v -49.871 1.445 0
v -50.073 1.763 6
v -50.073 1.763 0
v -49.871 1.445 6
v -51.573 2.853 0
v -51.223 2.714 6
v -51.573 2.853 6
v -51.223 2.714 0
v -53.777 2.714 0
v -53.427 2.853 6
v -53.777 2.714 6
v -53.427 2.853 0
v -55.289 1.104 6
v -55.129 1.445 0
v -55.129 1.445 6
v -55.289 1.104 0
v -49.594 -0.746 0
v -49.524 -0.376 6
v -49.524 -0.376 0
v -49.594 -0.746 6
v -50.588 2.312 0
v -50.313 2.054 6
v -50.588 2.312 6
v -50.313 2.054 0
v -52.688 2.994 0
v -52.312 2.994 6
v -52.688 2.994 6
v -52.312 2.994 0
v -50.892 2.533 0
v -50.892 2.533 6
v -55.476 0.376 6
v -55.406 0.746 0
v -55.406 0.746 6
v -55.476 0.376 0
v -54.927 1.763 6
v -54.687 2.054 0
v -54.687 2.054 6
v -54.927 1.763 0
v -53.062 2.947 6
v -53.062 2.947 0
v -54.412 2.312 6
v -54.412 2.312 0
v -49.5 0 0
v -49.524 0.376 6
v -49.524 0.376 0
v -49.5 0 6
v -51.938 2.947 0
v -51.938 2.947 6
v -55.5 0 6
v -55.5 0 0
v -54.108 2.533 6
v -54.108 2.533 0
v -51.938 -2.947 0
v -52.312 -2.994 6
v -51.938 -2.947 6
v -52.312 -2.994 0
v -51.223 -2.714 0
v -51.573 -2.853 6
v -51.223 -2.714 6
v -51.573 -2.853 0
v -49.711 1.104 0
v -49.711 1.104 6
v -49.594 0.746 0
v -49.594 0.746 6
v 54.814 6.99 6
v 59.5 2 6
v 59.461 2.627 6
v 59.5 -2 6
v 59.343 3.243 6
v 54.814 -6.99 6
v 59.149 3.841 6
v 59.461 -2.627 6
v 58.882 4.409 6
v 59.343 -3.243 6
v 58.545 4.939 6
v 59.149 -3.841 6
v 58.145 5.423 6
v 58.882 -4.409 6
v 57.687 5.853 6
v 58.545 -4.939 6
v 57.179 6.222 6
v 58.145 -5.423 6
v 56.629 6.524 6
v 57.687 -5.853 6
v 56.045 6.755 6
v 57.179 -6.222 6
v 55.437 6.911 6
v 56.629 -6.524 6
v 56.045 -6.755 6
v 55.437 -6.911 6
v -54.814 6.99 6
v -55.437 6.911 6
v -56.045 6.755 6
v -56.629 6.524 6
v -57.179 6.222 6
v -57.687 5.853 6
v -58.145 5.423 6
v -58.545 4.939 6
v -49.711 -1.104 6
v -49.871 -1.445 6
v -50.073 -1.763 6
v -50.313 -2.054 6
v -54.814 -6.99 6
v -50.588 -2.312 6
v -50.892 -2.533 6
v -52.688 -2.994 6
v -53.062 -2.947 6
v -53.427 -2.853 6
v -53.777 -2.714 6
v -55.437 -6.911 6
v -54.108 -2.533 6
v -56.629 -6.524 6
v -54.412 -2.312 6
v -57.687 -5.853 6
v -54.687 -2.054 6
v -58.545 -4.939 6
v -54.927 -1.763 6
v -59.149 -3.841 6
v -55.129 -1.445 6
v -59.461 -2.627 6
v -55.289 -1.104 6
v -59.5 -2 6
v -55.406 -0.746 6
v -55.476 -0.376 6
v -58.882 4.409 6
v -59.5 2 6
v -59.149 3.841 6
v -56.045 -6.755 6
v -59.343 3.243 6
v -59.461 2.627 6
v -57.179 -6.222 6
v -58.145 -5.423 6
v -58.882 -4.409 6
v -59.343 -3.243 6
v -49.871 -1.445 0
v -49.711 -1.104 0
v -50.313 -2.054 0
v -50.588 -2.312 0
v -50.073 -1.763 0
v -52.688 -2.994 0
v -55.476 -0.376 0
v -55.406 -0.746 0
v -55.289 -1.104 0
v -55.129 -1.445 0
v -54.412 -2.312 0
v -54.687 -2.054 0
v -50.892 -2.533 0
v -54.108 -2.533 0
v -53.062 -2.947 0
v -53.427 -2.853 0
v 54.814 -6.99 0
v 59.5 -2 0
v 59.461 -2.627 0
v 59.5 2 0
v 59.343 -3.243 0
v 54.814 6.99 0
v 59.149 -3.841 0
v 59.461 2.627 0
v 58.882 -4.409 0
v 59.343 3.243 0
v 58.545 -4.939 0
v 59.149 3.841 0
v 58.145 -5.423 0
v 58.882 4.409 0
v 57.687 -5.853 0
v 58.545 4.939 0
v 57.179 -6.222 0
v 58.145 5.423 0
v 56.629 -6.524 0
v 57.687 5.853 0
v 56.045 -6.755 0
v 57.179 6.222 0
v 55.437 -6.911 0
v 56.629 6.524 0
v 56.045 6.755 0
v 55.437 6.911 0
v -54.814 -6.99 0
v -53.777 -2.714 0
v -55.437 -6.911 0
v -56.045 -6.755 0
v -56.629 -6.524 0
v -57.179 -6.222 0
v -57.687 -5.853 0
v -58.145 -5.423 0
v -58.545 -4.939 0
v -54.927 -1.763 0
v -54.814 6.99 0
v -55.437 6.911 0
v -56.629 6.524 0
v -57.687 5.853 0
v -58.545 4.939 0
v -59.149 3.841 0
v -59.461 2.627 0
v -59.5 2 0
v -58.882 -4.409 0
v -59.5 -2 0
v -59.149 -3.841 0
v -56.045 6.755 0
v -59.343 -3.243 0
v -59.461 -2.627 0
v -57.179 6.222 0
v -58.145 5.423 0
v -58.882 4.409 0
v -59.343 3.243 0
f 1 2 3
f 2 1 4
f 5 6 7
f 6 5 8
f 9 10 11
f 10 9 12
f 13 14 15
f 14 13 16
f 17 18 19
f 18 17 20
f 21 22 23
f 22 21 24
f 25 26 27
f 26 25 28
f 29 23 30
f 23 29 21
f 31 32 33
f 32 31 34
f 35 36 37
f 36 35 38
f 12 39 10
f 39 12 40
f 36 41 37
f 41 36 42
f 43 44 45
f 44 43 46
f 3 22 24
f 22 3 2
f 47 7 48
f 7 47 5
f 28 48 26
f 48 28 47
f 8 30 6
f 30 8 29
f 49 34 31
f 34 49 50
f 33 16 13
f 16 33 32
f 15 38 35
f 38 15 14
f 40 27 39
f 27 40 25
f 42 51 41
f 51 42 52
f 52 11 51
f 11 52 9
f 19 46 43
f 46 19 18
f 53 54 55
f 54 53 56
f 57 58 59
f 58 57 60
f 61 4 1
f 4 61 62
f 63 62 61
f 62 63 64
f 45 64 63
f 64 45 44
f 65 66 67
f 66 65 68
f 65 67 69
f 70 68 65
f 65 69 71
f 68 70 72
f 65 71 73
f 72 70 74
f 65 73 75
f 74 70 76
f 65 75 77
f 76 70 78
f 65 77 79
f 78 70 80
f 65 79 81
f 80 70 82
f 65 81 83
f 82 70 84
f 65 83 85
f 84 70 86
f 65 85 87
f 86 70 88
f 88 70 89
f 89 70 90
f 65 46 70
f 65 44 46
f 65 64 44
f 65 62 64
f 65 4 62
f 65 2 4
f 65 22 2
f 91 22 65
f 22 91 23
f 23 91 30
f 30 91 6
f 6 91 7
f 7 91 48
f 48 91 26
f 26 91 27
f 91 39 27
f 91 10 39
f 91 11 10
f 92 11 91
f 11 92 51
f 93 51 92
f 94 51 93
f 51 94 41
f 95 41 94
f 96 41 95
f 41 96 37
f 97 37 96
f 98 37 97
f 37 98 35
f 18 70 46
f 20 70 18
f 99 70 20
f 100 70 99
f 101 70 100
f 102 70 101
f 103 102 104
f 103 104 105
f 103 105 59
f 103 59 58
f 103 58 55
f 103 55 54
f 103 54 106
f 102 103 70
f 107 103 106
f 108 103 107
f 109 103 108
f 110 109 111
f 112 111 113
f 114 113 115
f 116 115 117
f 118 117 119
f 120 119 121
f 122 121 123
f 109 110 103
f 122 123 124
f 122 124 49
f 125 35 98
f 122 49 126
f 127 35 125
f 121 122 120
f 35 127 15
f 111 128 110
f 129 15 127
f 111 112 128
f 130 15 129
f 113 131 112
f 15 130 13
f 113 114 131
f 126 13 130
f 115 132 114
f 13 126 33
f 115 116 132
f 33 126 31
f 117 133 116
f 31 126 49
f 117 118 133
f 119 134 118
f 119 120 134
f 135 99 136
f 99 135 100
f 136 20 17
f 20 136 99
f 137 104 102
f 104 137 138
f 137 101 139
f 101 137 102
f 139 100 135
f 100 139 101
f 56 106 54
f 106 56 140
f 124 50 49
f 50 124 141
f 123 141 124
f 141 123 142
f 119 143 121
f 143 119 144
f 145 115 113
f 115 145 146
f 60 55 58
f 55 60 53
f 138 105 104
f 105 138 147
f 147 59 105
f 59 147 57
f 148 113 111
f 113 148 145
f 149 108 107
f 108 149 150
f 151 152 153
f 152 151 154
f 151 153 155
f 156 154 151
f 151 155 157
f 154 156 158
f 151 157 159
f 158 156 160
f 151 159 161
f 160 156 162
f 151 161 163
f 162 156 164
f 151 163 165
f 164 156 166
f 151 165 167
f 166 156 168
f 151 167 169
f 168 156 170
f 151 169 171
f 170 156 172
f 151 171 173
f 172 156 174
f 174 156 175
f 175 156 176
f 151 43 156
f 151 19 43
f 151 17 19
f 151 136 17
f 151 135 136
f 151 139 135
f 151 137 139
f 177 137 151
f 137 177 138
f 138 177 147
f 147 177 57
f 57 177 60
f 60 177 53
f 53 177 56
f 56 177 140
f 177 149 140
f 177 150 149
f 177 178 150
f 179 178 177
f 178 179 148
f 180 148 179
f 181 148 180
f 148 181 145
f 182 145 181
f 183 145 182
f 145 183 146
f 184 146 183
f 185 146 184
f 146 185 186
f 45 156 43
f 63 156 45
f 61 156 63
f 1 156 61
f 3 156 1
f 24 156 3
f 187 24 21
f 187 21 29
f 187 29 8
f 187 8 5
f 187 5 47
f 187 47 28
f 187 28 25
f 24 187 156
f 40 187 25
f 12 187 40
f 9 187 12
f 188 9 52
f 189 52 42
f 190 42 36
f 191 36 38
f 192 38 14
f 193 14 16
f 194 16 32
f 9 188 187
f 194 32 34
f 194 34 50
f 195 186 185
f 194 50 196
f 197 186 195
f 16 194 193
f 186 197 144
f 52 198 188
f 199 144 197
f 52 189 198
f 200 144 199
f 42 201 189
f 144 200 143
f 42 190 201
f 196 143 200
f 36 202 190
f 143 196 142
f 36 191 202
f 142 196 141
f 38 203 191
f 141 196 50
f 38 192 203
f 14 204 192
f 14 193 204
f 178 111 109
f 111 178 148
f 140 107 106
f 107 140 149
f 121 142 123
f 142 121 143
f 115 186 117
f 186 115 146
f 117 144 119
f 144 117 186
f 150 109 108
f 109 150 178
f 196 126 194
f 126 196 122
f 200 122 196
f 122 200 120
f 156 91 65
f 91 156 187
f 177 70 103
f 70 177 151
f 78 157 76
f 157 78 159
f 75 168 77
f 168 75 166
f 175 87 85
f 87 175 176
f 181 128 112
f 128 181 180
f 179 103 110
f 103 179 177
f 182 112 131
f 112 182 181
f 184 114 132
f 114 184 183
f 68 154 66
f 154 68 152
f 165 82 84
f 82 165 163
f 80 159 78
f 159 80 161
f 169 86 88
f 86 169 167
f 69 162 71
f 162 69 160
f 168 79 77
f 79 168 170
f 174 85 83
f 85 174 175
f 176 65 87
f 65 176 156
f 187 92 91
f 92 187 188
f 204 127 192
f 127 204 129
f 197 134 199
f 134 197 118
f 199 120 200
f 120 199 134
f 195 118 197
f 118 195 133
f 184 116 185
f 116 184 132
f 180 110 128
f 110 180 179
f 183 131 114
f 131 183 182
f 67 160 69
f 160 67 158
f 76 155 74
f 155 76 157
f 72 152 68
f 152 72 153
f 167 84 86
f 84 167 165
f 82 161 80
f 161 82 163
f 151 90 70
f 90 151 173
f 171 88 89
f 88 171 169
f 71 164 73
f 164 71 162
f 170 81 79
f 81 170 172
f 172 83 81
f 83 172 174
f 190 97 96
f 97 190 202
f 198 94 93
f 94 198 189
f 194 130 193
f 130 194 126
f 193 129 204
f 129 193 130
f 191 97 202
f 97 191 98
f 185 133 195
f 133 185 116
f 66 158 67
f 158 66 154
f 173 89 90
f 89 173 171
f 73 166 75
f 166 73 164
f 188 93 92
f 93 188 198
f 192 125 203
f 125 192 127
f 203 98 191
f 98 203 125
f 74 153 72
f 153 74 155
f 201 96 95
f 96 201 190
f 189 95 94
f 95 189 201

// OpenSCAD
$fn = 50;


difference() {
	union() {
		hull() {
			translate(v = [-54.5000000000, 2.0000000000, 0]) {
				cylinder(h = 6, r = 5);
			}
			translate(v = [54.5000000000, 2.0000000000, 0]) {
				cylinder(h = 6, r = 5);
			}
			translate(v = [-54.5000000000, -2.0000000000, 0]) {
				cylinder(h = 6, r = 5);
			}
			translate(v = [54.5000000000, -2.0000000000, 0]) {
				cylinder(h = 6, r = 5);
			}
		}
	}
	union() {
		translate(v = [-52.5000000000, 0.0000000000, 0]) {
			cylinder(h = 6, r = 3.0000000000);
		}
		translate(v = [-52.5000000000, 0.0000000000, 0]) {
			cylinder(h = 6, r = 1.5000000000);
		}
		translate(v = [-52.5000000000, 0.0000000000, 0]) {
			cylinder(h = 6, r = 1.5000000000);
		}
		translate(v = [-52.5000000000, 0.0000000000, 0]) {
			cylinder(h = 6, r = 1.5000000000);
		}
	}
}
